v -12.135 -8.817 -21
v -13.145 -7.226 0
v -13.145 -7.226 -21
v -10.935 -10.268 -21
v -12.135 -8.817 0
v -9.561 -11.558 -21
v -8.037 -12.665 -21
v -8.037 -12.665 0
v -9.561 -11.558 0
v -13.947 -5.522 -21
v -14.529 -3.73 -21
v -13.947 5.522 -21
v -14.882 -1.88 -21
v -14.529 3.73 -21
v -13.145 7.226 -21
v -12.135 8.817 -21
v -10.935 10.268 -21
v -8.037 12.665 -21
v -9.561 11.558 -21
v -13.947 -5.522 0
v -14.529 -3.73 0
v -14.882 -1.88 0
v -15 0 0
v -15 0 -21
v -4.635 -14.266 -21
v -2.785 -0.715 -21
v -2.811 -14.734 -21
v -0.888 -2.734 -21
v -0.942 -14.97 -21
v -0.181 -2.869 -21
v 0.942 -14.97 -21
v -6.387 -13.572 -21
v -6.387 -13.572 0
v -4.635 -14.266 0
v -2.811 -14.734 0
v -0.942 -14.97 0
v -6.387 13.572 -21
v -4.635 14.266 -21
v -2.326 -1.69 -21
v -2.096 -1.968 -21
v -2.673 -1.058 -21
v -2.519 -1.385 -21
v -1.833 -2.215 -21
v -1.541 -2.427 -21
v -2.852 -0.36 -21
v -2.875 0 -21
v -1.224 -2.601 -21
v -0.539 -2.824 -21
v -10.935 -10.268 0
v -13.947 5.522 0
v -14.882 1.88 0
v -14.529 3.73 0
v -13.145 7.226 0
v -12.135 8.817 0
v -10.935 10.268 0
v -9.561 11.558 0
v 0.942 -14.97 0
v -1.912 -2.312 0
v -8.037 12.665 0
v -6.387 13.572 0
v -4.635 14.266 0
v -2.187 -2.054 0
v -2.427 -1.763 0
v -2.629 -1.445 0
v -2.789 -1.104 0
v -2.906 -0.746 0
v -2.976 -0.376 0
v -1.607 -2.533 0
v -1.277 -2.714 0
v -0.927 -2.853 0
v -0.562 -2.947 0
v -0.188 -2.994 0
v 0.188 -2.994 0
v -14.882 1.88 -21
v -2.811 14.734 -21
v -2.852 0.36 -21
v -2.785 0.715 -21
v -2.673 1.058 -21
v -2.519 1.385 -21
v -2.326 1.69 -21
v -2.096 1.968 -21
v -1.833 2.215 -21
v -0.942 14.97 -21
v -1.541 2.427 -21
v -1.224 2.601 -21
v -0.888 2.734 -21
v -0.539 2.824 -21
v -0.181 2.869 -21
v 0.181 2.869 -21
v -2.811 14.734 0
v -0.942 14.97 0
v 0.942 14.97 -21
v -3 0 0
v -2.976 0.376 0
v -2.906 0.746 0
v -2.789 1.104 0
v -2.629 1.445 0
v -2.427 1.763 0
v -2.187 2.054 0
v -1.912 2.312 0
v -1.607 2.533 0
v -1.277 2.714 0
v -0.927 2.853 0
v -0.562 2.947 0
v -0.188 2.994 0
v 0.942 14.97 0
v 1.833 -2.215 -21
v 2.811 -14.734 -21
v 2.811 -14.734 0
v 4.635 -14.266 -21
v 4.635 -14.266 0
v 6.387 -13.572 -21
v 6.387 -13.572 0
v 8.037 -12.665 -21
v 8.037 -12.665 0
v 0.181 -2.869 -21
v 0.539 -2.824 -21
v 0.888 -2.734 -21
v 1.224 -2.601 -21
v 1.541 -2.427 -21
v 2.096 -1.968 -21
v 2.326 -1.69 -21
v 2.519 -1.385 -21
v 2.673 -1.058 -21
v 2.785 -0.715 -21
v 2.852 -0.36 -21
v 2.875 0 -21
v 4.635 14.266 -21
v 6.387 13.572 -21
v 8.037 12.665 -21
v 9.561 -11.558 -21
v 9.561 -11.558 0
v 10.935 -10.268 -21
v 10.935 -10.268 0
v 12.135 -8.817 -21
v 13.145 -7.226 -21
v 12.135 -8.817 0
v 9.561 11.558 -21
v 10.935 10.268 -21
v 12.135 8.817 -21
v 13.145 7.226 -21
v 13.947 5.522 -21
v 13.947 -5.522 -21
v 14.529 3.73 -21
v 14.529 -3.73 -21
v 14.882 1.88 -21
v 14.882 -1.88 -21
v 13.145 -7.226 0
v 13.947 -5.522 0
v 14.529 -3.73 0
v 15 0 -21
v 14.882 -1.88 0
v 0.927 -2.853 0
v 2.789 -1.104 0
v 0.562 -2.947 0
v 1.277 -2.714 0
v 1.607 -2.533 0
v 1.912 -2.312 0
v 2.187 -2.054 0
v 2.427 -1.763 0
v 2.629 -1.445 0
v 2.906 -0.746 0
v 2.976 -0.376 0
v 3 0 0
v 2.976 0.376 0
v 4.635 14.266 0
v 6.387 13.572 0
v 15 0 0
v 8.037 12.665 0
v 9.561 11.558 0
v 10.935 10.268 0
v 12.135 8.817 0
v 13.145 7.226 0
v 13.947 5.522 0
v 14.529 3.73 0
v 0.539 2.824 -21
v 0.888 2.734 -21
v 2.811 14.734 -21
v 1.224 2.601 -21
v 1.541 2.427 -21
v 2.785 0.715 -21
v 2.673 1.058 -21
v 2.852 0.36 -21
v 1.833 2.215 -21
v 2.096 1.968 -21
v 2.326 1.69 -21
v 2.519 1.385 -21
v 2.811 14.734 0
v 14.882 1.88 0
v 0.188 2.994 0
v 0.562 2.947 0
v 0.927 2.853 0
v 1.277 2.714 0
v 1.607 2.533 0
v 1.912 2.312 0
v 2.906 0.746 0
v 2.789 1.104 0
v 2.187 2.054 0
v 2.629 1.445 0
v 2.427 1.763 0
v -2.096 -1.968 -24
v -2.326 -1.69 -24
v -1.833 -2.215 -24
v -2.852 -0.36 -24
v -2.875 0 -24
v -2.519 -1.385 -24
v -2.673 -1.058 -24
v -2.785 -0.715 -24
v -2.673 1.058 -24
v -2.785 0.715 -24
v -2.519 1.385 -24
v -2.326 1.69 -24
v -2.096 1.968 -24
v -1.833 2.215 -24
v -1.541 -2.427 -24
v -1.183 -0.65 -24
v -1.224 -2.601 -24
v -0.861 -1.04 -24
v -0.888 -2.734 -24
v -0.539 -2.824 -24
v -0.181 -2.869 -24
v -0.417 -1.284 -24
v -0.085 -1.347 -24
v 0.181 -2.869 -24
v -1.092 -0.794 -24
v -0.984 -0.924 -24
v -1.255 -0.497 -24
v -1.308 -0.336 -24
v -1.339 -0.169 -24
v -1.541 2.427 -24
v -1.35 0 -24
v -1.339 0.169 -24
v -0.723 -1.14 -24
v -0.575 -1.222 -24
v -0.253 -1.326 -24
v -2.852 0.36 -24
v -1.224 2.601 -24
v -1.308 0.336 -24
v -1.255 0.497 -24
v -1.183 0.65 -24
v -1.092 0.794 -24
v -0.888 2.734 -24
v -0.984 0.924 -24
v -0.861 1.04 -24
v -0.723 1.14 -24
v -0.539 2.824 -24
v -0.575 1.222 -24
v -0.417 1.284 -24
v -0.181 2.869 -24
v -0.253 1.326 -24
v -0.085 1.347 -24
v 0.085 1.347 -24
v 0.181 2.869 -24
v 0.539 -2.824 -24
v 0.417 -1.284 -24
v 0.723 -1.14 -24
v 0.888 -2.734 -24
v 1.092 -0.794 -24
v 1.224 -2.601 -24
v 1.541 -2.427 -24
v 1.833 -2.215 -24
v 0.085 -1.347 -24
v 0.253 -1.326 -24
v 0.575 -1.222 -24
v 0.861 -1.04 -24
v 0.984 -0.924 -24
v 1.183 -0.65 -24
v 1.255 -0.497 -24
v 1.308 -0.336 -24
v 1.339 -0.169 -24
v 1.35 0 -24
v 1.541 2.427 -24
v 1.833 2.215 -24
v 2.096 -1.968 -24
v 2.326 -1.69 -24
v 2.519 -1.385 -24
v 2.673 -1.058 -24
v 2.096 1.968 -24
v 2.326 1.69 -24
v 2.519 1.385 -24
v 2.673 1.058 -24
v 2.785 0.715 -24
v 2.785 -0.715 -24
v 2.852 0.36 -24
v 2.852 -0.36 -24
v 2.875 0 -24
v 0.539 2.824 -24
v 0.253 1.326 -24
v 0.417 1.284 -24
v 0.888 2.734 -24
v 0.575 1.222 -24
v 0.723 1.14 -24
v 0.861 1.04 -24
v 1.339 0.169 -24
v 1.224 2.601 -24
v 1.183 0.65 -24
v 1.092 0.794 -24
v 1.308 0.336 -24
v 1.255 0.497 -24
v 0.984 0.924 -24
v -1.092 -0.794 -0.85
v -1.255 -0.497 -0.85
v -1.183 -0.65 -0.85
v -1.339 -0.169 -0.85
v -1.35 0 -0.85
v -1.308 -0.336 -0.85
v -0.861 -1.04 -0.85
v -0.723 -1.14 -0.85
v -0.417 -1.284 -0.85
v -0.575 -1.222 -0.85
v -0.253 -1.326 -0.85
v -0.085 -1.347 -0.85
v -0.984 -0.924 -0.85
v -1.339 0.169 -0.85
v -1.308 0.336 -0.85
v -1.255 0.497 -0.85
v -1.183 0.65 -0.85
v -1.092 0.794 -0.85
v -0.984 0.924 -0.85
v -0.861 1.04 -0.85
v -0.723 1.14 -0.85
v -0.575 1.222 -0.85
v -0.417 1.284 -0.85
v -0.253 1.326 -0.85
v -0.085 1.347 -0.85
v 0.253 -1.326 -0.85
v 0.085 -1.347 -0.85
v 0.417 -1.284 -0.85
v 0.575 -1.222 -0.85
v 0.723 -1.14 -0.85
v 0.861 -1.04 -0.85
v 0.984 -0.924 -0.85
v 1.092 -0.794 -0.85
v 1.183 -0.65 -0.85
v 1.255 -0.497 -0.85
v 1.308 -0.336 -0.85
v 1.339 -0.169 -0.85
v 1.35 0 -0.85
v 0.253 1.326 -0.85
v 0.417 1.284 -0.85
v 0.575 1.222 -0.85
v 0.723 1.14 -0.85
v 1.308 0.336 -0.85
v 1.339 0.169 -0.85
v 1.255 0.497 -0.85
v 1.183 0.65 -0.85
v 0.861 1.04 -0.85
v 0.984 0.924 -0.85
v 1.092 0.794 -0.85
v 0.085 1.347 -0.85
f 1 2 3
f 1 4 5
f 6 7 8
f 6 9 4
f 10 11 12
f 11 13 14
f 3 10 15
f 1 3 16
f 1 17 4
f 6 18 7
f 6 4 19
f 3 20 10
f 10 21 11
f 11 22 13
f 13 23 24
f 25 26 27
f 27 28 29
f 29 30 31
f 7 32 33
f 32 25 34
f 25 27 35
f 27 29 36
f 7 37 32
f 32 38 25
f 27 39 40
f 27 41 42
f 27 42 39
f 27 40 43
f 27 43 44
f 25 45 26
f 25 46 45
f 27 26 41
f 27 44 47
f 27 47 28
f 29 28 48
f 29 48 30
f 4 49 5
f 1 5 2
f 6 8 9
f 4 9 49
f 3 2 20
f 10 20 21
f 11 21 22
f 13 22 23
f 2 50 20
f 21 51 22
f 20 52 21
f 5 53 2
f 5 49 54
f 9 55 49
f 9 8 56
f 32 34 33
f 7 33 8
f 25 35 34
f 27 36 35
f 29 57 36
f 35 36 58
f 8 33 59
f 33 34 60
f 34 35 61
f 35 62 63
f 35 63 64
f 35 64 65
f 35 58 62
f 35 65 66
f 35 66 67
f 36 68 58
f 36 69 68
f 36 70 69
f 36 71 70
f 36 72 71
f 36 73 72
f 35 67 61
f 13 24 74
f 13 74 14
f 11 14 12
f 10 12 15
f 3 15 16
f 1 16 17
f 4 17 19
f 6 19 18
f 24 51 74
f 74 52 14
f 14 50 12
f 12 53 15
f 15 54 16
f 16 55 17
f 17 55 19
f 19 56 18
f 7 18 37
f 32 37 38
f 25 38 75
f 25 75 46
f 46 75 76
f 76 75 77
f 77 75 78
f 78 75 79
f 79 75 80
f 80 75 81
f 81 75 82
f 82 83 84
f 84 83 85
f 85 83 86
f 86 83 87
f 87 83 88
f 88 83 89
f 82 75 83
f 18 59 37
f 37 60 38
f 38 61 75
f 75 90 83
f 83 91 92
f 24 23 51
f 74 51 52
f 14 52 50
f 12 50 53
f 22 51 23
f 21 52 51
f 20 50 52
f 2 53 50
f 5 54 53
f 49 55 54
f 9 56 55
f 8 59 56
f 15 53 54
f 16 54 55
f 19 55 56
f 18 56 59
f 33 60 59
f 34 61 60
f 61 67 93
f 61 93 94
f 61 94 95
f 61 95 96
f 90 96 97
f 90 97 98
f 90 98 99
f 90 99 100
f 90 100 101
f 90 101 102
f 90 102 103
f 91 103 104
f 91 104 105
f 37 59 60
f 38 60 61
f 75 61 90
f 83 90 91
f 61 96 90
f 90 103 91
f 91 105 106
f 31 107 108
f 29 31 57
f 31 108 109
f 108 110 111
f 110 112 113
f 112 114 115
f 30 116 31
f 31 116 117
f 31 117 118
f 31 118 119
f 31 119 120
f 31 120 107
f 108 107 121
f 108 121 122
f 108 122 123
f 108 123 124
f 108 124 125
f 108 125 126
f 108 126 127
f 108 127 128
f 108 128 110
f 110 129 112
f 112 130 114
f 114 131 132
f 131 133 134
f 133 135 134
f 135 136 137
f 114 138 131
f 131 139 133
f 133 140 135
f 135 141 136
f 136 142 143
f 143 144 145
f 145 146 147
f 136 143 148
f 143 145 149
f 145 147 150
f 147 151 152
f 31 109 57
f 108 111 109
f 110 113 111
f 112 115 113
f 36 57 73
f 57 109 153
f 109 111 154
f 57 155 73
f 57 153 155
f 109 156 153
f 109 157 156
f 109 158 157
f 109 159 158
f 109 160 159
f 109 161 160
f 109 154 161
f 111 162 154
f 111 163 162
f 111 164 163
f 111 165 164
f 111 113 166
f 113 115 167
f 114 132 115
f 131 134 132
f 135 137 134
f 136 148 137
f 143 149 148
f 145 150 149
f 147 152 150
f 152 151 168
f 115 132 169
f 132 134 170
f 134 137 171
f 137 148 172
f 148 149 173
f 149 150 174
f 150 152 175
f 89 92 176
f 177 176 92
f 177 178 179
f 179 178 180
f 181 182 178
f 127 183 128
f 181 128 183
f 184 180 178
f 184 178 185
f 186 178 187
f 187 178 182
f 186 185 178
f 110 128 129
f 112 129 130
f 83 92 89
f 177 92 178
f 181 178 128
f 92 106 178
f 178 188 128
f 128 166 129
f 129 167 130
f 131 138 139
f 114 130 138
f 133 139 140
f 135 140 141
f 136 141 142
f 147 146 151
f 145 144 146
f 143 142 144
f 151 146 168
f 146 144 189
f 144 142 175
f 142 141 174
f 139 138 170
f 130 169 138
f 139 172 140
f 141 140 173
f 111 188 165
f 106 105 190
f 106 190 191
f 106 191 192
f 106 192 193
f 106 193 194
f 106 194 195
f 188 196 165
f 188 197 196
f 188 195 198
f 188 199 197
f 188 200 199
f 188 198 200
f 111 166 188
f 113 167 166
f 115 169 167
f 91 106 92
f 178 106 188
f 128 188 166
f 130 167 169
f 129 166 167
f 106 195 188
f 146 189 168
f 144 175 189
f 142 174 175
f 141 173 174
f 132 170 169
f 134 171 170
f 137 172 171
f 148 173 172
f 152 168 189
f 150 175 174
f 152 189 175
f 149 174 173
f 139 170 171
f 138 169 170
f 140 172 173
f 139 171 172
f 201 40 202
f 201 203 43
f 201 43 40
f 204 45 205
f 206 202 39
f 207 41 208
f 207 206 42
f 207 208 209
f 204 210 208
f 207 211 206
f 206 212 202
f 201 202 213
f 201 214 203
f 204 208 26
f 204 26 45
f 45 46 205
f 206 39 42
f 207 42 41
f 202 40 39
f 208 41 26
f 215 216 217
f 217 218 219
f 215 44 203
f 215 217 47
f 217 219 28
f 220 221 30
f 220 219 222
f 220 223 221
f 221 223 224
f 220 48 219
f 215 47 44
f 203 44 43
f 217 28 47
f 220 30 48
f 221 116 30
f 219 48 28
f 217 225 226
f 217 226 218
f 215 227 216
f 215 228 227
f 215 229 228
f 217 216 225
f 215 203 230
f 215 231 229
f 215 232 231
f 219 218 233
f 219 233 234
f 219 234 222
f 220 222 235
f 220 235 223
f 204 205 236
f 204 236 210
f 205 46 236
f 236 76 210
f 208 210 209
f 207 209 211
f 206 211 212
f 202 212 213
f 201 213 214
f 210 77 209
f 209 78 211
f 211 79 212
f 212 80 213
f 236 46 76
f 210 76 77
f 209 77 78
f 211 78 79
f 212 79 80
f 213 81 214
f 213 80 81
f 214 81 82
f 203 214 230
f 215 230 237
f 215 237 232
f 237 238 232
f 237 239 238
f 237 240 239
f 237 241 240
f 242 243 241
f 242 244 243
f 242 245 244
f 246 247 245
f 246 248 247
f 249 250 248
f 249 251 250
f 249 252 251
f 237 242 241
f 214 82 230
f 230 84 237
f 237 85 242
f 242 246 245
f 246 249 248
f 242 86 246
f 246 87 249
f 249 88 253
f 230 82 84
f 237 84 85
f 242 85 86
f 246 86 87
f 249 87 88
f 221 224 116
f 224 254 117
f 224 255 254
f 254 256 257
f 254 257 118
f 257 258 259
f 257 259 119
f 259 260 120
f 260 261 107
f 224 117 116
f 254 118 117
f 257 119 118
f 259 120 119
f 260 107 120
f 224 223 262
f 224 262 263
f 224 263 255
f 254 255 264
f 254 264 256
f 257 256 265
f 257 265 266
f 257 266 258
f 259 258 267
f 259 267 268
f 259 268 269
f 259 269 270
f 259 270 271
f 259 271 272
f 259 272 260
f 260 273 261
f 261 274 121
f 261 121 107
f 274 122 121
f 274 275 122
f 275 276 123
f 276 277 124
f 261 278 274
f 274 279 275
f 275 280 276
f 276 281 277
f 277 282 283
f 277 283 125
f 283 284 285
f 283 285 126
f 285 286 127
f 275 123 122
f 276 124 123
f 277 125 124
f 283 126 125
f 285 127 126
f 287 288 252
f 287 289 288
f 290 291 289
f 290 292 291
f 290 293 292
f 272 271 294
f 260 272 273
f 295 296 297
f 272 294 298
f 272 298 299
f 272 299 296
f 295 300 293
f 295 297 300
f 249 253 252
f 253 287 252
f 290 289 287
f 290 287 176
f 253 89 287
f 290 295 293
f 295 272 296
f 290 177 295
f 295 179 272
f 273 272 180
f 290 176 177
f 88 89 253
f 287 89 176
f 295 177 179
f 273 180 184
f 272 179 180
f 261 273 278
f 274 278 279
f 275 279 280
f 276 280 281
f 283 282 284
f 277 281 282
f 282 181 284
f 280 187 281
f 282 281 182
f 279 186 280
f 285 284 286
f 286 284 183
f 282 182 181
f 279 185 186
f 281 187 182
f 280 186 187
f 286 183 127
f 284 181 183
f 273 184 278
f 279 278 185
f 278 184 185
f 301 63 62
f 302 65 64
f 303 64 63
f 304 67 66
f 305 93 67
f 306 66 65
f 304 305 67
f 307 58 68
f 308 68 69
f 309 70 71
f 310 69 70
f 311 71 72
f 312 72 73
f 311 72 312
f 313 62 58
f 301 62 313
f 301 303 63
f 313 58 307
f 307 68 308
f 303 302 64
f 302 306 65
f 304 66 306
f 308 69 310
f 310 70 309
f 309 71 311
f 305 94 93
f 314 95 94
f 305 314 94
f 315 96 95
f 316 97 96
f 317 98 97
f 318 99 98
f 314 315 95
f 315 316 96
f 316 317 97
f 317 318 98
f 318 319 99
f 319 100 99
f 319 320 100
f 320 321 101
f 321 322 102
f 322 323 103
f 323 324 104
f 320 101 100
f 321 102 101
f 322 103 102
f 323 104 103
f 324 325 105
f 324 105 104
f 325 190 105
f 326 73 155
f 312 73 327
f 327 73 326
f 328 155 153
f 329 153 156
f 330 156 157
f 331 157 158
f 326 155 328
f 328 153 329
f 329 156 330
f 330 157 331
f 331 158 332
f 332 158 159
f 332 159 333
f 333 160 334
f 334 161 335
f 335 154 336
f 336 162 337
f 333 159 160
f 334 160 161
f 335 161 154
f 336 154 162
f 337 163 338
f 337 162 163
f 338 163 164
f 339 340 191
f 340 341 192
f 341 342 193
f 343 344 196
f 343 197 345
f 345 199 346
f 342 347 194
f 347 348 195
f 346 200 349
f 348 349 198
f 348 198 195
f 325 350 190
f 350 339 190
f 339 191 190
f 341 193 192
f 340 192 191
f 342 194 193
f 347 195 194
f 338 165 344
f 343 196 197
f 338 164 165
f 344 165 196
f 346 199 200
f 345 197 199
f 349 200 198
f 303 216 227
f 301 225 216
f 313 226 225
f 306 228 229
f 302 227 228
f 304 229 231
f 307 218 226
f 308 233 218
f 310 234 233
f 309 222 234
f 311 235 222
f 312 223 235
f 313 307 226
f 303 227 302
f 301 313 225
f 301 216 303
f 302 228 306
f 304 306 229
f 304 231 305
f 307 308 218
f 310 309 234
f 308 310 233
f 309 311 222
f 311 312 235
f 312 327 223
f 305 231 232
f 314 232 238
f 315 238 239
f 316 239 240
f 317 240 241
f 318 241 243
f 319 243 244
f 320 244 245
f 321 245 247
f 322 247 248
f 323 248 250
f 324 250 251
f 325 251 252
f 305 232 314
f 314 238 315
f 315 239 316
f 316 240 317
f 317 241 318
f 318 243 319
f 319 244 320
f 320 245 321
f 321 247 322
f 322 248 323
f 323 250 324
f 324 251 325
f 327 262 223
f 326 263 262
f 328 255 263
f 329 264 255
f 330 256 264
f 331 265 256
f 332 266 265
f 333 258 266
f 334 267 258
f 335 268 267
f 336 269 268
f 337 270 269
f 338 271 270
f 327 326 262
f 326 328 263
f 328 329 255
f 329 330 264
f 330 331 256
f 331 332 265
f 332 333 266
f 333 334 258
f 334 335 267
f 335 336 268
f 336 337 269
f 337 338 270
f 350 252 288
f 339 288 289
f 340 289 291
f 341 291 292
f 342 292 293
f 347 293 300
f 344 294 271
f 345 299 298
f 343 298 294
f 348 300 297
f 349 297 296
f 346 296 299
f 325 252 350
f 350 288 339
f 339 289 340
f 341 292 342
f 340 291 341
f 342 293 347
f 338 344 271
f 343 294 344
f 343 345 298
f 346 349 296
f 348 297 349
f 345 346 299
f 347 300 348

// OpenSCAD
$fn = 50;


difference() {
	union() {
		translate(v = [0, 0, -21.0000000000]) {
			cylinder(h = 21, r = 15.0000000000);
		}
		#translate(v = [0, 0, -24.0000000000]) {
			cylinder(h = 24, r = 2.8750000000);
		}
	}
	union() {
		translate(v = [0, 0, 0]) {
			rotate(a = [0, 0, 0]) {
				difference() {
					union() {
						translate(v = [0, 0, -24.0000000000]) {
							cylinder(h = 24, r = 1.0000000000);
						}
						translate(v = [0, 0, -0.8500000000]) {
							cylinder(h = 0.8500000000, r1 = 1.3500000000, r2 = 3.0000000000);
						}
						translate(v = [0, 0, -24.0000000000]) {
							cylinder(h = 24, r = 1.3500000000);
						}
						translate(v = [0, 0, -24.0000000000]) {
							cylinder(h = 24, r = 1.0000000000);
						}
					}
					union();
				}
			}
		}
	}
}
